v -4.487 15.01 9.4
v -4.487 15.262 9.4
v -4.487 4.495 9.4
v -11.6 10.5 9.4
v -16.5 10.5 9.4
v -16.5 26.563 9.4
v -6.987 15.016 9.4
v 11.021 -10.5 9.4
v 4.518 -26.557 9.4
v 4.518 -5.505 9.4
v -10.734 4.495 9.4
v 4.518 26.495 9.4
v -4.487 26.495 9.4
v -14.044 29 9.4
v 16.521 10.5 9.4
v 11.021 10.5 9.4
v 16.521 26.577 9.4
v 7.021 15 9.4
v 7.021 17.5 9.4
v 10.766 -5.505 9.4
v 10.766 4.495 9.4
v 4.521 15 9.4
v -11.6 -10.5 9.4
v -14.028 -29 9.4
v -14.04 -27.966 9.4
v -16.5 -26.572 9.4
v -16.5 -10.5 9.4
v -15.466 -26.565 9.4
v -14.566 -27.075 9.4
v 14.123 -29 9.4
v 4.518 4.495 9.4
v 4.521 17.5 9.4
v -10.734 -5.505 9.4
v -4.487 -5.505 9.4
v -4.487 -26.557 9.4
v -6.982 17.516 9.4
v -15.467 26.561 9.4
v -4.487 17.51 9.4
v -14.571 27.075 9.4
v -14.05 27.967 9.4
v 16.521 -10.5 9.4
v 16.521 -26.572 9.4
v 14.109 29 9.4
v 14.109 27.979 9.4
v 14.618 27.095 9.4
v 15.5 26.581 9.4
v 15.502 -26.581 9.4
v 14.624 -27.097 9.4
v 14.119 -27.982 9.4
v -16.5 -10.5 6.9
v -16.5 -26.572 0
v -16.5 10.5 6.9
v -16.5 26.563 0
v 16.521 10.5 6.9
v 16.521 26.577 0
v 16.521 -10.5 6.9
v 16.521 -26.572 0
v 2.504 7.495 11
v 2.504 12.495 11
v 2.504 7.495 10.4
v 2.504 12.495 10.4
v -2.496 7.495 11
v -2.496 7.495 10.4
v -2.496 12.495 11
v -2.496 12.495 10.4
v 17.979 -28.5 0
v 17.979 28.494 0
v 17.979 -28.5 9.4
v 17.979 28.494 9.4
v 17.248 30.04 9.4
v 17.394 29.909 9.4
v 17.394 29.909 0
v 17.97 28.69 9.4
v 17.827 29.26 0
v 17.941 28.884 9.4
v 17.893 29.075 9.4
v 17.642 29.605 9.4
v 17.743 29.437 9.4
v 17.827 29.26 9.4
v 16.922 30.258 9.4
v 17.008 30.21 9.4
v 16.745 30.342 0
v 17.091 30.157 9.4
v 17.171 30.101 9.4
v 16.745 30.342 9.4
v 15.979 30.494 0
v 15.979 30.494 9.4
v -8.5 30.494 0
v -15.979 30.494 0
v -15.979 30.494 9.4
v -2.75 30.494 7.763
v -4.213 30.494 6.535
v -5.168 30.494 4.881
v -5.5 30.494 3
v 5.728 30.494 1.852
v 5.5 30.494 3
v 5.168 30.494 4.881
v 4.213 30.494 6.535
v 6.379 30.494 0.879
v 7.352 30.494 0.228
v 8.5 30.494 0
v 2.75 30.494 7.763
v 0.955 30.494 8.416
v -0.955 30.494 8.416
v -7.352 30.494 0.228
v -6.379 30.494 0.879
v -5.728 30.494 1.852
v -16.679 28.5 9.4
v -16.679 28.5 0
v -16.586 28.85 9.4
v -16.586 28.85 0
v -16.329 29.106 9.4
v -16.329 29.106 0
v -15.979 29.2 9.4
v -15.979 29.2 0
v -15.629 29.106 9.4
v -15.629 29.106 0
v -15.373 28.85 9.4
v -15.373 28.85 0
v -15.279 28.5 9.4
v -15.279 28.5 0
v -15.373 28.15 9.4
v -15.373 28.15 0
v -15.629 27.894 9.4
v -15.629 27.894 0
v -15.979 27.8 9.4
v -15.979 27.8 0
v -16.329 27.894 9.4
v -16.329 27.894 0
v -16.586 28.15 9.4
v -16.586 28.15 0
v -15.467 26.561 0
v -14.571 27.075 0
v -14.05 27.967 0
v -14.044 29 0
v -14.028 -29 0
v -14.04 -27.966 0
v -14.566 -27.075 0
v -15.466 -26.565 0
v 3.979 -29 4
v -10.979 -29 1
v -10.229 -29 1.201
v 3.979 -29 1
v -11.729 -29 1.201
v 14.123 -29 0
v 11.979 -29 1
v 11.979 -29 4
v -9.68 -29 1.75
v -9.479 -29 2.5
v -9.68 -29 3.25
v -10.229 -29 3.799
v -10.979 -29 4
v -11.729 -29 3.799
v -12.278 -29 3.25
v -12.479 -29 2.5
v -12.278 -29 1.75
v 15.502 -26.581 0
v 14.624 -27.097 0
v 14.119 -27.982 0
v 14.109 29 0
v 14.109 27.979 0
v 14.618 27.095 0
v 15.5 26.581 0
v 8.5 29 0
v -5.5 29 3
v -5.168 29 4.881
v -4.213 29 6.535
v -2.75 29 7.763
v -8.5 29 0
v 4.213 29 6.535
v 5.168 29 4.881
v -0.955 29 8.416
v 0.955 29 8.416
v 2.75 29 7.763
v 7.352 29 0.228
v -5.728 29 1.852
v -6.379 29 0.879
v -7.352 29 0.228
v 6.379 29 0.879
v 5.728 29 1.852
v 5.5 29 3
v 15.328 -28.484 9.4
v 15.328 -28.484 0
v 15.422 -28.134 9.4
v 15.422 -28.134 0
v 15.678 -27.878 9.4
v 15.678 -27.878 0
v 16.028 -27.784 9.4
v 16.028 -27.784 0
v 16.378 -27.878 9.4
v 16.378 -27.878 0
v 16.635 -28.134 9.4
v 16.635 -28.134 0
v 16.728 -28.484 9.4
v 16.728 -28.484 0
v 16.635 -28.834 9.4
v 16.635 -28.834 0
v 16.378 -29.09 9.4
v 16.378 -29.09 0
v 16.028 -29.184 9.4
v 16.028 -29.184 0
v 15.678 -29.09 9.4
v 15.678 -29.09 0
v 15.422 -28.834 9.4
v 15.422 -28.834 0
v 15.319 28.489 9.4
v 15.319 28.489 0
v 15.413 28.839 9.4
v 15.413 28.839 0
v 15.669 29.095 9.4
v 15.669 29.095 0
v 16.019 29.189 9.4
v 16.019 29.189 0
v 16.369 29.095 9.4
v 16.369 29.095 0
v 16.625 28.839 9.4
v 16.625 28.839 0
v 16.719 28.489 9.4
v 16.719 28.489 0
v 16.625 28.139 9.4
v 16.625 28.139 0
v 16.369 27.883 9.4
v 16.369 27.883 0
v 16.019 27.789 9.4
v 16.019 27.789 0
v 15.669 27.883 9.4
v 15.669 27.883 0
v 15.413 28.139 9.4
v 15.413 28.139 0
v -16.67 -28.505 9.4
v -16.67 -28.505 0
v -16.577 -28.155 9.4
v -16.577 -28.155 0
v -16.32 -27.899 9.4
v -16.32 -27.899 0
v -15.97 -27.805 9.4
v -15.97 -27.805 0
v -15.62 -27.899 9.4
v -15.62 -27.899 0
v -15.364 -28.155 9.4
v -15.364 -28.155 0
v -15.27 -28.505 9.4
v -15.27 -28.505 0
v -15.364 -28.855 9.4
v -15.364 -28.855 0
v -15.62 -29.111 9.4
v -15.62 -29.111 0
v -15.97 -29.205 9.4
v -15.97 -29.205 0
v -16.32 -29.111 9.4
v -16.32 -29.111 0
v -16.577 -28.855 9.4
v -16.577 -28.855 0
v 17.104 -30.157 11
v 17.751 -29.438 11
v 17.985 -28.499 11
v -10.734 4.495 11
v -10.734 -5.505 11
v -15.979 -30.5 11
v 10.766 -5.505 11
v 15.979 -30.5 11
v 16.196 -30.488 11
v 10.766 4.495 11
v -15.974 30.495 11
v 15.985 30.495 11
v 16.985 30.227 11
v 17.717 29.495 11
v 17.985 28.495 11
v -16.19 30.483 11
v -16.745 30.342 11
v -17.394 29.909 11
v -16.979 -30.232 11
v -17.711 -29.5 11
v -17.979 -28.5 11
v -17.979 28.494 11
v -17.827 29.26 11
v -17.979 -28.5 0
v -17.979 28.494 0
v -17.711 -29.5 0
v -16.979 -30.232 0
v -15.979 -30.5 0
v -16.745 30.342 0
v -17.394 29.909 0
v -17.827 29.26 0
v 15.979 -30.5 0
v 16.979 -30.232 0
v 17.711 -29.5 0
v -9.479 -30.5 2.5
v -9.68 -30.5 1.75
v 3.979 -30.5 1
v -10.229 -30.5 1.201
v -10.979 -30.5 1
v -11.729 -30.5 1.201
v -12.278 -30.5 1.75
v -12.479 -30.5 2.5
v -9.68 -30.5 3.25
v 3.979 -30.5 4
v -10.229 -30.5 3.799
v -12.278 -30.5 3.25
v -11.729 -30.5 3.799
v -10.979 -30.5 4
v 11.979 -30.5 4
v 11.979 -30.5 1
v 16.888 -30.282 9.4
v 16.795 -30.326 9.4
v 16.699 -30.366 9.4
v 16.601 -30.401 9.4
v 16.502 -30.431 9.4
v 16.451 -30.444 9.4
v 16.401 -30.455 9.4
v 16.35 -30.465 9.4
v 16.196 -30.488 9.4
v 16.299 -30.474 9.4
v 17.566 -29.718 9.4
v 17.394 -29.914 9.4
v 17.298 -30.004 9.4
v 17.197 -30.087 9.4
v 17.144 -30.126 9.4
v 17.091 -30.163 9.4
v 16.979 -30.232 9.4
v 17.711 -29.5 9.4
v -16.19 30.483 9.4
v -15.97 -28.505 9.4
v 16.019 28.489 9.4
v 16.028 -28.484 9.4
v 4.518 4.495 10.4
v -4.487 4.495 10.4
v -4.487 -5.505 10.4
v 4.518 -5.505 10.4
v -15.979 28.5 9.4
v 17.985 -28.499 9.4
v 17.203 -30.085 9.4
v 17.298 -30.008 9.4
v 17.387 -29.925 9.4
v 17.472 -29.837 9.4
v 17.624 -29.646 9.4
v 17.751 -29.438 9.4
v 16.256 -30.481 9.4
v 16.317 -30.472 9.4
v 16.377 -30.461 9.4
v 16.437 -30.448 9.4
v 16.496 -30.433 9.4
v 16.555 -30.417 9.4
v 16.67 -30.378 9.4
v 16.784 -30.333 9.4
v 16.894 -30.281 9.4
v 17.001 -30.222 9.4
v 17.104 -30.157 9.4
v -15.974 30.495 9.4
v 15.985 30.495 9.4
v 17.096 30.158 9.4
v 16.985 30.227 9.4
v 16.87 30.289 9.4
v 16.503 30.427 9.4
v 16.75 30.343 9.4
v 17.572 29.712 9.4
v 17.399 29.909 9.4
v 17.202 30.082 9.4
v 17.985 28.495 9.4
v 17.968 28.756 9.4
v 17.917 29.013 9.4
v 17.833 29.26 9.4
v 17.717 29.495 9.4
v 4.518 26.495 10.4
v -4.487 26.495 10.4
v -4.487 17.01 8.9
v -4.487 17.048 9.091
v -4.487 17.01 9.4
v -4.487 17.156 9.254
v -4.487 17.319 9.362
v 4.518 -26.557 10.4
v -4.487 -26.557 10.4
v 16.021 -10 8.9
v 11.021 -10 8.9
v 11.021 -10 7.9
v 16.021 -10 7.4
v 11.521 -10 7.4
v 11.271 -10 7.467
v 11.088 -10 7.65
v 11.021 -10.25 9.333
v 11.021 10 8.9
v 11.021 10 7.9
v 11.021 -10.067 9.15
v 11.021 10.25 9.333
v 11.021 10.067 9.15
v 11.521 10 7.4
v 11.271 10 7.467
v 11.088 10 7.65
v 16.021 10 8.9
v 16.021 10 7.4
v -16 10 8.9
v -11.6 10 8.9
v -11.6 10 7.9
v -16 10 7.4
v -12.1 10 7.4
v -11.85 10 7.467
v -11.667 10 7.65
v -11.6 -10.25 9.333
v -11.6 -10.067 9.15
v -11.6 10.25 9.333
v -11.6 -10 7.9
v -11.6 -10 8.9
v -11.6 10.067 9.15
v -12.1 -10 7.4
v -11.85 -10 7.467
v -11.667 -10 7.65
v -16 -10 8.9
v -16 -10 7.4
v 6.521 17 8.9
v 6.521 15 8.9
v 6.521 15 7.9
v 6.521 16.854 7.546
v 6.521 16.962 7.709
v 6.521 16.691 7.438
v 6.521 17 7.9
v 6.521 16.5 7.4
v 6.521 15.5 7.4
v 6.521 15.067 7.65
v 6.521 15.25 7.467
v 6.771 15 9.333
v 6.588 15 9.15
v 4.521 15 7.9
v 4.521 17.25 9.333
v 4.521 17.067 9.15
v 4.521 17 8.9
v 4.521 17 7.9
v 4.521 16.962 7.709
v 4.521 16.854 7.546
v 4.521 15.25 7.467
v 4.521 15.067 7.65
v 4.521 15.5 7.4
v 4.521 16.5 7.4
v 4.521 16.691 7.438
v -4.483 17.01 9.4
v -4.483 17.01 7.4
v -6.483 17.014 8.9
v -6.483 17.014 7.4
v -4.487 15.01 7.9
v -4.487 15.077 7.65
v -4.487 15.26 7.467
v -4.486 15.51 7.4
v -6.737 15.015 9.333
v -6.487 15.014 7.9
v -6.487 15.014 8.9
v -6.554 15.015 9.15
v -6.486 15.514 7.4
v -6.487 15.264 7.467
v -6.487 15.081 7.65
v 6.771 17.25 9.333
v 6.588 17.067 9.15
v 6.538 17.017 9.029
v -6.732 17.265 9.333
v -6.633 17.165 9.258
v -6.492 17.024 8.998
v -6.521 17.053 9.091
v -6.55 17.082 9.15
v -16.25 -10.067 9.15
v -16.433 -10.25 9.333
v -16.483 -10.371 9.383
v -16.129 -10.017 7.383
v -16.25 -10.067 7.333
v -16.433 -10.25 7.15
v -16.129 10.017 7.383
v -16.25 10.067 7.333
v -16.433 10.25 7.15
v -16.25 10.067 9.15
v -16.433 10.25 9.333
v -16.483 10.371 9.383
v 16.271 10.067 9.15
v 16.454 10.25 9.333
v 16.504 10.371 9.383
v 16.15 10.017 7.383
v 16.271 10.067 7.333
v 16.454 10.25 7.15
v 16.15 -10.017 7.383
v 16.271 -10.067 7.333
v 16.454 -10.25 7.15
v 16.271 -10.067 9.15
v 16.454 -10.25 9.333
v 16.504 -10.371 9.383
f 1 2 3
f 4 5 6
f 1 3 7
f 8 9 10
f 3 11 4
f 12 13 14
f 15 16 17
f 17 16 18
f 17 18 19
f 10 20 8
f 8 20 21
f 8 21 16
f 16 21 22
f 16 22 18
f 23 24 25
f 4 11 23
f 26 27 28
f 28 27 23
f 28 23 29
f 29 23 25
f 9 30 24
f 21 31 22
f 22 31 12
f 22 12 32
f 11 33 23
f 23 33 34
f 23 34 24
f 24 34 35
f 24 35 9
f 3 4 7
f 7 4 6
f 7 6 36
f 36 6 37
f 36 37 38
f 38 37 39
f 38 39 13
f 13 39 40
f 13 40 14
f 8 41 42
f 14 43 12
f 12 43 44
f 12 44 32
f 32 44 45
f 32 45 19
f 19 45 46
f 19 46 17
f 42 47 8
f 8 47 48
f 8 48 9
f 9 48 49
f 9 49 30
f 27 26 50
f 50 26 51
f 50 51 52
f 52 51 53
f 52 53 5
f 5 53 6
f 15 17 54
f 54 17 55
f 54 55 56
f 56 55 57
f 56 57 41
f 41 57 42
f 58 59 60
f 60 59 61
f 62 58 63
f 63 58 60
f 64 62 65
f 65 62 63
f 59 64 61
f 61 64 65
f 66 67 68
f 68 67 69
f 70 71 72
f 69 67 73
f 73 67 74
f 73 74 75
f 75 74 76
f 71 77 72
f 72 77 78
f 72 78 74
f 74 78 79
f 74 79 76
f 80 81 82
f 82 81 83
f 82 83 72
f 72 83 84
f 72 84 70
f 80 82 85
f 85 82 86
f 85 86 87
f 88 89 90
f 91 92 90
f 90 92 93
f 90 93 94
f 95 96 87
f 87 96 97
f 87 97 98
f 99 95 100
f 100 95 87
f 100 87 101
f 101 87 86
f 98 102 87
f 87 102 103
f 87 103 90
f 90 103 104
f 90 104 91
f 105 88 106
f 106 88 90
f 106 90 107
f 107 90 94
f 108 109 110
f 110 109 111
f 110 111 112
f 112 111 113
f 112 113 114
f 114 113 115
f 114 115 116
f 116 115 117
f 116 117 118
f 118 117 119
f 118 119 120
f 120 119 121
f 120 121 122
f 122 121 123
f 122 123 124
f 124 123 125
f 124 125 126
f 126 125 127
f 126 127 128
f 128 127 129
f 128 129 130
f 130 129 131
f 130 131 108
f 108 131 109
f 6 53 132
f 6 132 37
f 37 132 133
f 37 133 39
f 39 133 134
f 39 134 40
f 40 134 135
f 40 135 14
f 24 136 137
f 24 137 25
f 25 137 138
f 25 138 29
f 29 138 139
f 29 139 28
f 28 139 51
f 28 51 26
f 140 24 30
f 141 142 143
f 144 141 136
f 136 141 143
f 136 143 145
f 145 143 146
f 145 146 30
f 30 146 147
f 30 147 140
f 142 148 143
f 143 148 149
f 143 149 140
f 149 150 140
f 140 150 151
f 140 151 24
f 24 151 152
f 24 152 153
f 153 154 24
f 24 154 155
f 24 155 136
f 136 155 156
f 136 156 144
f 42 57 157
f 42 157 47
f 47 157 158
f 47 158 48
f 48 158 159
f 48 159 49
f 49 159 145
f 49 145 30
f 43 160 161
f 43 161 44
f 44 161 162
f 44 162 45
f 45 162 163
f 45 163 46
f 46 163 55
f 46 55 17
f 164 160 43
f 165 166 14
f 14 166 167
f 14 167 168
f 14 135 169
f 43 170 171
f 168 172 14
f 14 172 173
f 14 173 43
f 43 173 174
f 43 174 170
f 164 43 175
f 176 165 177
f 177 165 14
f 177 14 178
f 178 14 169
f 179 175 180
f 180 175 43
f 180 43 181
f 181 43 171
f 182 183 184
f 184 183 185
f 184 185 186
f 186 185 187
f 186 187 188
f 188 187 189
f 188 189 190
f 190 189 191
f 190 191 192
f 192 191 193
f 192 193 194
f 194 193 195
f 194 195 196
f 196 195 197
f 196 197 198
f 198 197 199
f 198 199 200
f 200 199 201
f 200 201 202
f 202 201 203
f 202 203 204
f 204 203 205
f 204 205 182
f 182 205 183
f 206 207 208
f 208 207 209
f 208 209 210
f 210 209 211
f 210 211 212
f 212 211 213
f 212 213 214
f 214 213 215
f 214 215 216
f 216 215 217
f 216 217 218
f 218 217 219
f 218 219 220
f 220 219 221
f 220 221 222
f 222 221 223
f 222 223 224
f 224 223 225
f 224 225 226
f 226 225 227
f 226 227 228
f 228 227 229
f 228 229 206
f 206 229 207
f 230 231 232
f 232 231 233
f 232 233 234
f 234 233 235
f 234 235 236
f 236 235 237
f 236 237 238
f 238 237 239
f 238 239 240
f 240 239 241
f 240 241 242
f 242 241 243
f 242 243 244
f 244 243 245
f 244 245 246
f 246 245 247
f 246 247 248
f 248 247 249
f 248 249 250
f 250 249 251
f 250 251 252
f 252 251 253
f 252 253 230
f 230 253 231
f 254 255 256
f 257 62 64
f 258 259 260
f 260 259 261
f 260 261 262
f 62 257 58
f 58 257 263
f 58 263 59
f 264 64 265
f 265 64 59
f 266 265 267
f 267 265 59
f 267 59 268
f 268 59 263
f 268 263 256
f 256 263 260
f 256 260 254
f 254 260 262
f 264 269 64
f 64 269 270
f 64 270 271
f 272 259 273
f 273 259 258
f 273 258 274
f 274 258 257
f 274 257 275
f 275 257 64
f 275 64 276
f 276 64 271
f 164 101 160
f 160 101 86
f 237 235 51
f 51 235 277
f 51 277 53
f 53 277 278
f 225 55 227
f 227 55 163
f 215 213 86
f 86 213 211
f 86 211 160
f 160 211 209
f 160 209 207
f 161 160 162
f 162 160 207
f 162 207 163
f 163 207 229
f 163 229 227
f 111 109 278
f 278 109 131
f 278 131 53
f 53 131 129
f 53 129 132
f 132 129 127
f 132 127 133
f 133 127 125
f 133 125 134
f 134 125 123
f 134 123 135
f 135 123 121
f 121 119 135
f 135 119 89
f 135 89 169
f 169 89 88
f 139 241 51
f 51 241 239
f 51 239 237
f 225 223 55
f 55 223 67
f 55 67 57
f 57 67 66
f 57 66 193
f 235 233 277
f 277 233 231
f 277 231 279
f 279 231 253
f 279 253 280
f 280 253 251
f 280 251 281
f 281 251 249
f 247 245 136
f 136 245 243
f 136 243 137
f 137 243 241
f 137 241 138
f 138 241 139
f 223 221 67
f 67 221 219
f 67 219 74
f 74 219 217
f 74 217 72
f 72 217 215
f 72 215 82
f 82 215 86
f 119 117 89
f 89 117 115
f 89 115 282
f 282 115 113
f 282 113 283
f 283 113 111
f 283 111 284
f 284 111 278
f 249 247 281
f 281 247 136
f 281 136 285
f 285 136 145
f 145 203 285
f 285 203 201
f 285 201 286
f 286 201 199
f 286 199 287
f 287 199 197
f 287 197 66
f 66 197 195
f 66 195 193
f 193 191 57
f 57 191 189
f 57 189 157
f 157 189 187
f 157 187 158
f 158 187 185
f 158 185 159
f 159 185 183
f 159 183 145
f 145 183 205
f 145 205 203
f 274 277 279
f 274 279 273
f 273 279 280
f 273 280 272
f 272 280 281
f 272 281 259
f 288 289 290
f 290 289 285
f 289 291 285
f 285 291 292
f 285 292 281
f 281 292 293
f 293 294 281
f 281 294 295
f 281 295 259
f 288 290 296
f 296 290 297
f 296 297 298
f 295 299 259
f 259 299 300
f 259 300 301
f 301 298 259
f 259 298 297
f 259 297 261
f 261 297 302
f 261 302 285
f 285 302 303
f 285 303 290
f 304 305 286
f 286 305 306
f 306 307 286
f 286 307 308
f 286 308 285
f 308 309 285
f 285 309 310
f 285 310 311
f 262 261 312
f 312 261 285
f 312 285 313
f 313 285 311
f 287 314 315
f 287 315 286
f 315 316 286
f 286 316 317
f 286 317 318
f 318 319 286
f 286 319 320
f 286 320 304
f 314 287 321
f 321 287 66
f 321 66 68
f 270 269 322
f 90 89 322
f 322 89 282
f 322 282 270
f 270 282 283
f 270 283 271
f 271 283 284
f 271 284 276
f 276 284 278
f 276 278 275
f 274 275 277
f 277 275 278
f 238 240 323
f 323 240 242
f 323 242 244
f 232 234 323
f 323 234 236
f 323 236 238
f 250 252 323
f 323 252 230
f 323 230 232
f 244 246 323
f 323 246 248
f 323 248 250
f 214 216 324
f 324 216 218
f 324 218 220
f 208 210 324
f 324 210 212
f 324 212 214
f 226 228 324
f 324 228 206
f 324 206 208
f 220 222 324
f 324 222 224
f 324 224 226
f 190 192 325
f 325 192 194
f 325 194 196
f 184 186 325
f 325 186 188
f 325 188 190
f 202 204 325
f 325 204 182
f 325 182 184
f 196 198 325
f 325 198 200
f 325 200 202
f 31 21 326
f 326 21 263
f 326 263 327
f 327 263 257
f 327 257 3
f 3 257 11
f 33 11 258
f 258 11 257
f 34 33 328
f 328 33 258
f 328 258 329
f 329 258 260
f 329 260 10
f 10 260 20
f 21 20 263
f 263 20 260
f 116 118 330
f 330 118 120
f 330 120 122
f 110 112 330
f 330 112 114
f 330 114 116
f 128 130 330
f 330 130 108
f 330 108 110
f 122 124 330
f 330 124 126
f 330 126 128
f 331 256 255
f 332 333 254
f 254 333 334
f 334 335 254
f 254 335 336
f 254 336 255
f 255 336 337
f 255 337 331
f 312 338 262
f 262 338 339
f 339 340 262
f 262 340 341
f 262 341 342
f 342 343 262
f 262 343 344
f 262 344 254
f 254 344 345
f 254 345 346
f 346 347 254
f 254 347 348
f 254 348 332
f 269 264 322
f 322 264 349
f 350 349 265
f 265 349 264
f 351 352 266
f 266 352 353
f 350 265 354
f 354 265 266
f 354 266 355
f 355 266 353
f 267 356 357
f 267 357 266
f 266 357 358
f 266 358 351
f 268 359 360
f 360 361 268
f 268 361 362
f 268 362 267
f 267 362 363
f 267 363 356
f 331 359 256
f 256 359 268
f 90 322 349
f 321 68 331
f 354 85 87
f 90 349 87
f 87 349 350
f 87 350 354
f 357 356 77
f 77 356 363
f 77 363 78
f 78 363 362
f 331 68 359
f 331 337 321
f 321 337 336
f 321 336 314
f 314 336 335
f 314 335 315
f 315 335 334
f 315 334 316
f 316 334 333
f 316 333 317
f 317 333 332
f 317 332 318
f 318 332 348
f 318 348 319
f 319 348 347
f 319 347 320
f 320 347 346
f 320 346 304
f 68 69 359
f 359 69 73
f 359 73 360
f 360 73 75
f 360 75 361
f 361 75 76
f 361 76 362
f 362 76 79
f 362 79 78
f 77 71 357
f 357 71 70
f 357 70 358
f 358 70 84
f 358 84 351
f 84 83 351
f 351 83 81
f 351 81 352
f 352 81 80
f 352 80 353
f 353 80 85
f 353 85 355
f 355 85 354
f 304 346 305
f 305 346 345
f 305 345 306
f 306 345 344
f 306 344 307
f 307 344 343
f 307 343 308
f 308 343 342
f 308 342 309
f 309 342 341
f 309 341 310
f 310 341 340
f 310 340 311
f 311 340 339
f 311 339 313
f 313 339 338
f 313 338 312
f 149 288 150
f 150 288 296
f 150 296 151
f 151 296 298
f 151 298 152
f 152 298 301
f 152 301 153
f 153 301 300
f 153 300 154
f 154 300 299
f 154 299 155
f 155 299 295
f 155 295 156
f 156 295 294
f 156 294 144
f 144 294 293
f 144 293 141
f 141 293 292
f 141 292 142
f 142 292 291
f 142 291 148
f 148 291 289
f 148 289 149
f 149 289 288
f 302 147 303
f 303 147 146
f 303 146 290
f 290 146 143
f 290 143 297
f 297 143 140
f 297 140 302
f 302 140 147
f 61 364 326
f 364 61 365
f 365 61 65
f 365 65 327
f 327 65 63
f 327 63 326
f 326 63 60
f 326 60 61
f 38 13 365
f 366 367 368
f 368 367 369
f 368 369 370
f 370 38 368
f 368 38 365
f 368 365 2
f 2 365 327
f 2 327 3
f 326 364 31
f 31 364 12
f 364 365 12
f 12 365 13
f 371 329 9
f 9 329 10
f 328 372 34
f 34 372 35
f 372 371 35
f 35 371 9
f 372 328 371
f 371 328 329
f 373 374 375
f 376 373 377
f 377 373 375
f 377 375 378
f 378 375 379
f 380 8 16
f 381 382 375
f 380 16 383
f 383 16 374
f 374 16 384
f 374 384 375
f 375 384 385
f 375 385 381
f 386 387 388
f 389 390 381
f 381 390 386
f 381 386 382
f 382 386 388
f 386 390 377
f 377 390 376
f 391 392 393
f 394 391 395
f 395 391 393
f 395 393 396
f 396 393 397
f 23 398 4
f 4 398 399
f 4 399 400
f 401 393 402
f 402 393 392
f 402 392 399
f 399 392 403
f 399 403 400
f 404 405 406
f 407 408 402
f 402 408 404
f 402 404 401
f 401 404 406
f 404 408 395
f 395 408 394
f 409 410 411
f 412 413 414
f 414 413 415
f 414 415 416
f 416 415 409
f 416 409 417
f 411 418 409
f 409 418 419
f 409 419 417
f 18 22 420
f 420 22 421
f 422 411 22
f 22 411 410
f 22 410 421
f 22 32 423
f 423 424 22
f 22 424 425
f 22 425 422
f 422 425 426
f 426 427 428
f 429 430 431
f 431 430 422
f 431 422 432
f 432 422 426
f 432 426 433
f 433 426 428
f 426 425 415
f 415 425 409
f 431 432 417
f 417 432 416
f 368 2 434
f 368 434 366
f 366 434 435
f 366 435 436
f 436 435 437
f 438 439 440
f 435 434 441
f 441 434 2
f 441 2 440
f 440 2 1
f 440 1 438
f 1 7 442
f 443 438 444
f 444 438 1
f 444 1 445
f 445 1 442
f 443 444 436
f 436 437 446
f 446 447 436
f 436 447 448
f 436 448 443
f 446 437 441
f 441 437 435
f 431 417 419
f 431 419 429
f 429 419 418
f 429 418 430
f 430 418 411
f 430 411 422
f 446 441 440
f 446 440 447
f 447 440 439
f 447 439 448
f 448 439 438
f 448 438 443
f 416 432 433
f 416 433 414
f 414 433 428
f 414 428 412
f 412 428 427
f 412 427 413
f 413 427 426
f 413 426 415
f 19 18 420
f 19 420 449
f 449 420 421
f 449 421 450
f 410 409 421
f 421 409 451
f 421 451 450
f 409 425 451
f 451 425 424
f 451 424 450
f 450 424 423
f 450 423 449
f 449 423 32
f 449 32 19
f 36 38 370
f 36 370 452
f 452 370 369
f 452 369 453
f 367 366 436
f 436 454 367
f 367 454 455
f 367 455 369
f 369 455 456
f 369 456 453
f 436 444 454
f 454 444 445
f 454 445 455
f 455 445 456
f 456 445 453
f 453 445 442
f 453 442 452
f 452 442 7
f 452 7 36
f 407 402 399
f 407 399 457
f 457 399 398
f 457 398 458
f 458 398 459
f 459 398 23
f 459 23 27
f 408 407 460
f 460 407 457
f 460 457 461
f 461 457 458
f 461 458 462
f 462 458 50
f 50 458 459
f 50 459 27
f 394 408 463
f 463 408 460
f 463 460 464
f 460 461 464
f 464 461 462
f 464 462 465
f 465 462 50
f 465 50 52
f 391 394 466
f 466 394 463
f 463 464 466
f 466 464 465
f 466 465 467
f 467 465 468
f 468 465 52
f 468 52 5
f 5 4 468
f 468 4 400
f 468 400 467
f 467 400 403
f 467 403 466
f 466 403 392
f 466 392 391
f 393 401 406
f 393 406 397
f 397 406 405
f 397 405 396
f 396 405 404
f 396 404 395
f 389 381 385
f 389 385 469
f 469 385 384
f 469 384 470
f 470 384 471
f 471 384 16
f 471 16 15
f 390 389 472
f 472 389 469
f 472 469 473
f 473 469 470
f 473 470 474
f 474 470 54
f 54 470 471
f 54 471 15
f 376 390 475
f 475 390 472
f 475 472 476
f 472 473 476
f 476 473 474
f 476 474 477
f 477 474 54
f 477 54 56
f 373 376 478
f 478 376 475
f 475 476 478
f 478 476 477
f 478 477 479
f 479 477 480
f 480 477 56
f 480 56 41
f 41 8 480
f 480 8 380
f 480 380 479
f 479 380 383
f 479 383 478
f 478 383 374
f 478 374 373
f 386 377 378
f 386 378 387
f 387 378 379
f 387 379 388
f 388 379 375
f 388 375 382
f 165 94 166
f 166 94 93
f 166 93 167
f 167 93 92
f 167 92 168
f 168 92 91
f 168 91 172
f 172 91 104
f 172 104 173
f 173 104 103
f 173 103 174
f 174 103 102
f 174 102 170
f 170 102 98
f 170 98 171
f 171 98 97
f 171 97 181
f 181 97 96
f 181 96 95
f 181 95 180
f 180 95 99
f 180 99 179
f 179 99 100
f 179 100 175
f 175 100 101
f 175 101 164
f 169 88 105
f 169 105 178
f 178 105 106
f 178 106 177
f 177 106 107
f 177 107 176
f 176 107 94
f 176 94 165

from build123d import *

# Parameters (mm, degrees)
SKETCH_1_R          = 0.7
EXTRUDE_1_DEPTH     = 11
SKETCH_3_W          = 21.5
SKETCH_3_H          = 10
EXTRUDE_2_DEPTH     = 1.6
SKETCH_4_W          = 5
SKETCH_4_H          = 5
CUT_EXTRUDE_1_DEPTH = 1
CUT_EXTRUDE_2_REACH = 62.995
SKETCH_5_R          = 1.5
SKETCH_5_W          = 8
SKETCH_5_H          = 3
SKETCH_6_W          = 9.004768993
SKETCH_6_H          = 22
SKETCH_6_H_2        = 21.052305639
CUT_EXTRUDE_3_DEPTH = 1
SKETCH_7_W          = 5.5
SKETCH_7_H          = 20
SKETCH_7_W_2        = 4.9
SKETCH_7_W_3        = 2
SKETCH_7_H_2        = 2
EXTRUDE_4_DEPTH     = 2
FILLET_2_R          = 0.5
CUT_EXTRUDE_4_REACH = 62.994
SKETCH_9_R          = 5.5
FILLET_3_R          = 3


with BuildPart() as part:
    # Эскиз1 → Бобышка-Вытянуть1 (new body)
    with BuildSketch(Plane.XY):
        with BuildLine():
            Line((-15.979444254, 30.494289473), (15.979444254, 30.494289473))
            ThreePointArc((15.979444254, 30.494289473), (17.393657817, 29.908503035), (17.979444254, 28.494289473))
            Line((17.979444254, 28.494289473), (17.979444254, -28.500000343))
            ThreePointArc((17.979444254, -28.500000343), (17.393657817, -29.914213905), (15.979444254, -30.500000343))
            Line((15.979444254, -30.500000343), (-15.979444254, -30.500000343))
            ThreePointArc((-15.979444254, -30.500000343), (-17.393657817, -29.914213905), (-17.979444254, -28.500000343))
            Line((-17.979444254, -28.500000343), (-17.979444254, 28.494289473))
            ThreePointArc((-17.979444254, 28.494289473), (-17.393657817, 29.908503035), (-15.979444254, 30.494289473))
        make_face()
        with Locations((-15.979444254, 28.500000343)):
            Circle(SKETCH_1_R, mode=Mode.SUBTRACT)
        with Locations((16.01925313, 28.489204167)):
            Circle(SKETCH_1_R, mode=Mode.SUBTRACT)
        with Locations((16.028296267, -28.484120661)):
            Circle(SKETCH_1_R, mode=Mode.SUBTRACT)
        with Locations((-15.970396078, -28.505074873)):
            Circle(SKETCH_1_R, mode=Mode.SUBTRACT)
        with BuildLine():
            Line((-14.027975552, -29.00000033), (14.122849497, -29.00000033))
            ThreePointArc((14.122849497, -29.00000033), (14.623833191, -27.096913866), (16.520580958, -26.572442078))
            Line((16.520580958, -26.572442078), (16.520580958, 26.576499963))
            ThreePointArc((16.520580958, 26.576499963), (14.617623044, 27.094499874), (14.109055694, 29.00000033))
            Line((14.109055694, 29.00000033), (-14.044436107, 29.00000033))
            ThreePointArc((-14.044436107, 29.00000033), (-14.570671317, 27.074656136), (-16.499999911, 26.563221942))
            Line((-16.499999911, 26.563221942), (-16.499999911, -26.57182153))
            ThreePointArc((-16.499999911, -26.57182153), (-14.565751702, -27.075066872), (-14.027975552, -29.00000033))
        make_face(mode=Mode.SUBTRACT)
    extrude(amount=EXTRUDE_1_DEPTH)

    # Эскиз3 → Бобышка-Вытянуть2 (add)
    with BuildSketch(Plane.XY.offset(11)):
        with BuildLine():
            Line((-17.973934657, 28.494881466), (-17.973934657, -28.49940835))
            ThreePointArc((-17.973934657, -28.49940835), (-17.388148219, -29.913621912), (-15.973934657, -30.49940835))
            Line((-15.973934657, -30.49940835), (15.984953852, -30.49940835))
            ThreePointArc((15.984953852, -30.49940835), (17.399167415, -29.913621912), (17.984953852, -28.49940835))
            Line((17.984953852, -28.49940835), (17.984953852, 28.494881466))
            ThreePointArc((17.984953852, 28.494881466), (17.399167415, 29.909095028), (15.984953852, 30.494881466))
            Line((15.984953852, 30.494881466), (-15.973934657, 30.494881466))
            ThreePointArc((-15.973934657, 30.494881466), (-17.388148219, 29.909095028), (-17.973934657, 28.494881466))
        make_face()
        with Locations((0.015800122, -0.505118534)):
            Rectangle(SKETCH_3_W, SKETCH_3_H, mode=Mode.SUBTRACT)
    extrude(amount=-EXTRUDE_2_DEPTH)

    # Эскиз4 → Вырез-Вытянуть1 (cut)
    with BuildSketch(Plane.XY.offset(11)):
        with Locations((0.003657856, 9.994881549)):
            Rectangle(SKETCH_4_W, SKETCH_4_H)
    extrude(amount=-CUT_EXTRUDE_1_DEPTH, mode=Mode.SUBTRACT)

    # Эскиз5 → Вырез-Вытянуть2 (cut, up to next)
    with BuildSketch(Plane.XZ.offset(30.500000343), mode=Mode.PRIVATE) as cut_extrude_2_sk1:
        with Locations((-10.979444254, 2.5)):
            Circle(SKETCH_5_R)
    cut_extrude_2_tool1 = extrude(cut_extrude_2_sk1.sketch, amount=-CUT_EXTRUDE_2_REACH, mode=Mode.PRIVATE) & part.part
    add(cut_extrude_2_tool1.solids().sort_by_distance((-10.979444, -30.5, 2.5))[0], mode=Mode.SUBTRACT)
    # Эскиз5 → Вырез-Вытянуть2 (cut, up to next)
    with BuildSketch(Plane.XZ.offset(30.500000343), mode=Mode.PRIVATE) as cut_extrude_2_sk2:
        with Locations((7.979444254, 2.5)):
            Rectangle(SKETCH_5_W, SKETCH_5_H)
    cut_extrude_2_tool2 = extrude(cut_extrude_2_sk2.sketch, amount=-CUT_EXTRUDE_2_REACH, mode=Mode.PRIVATE) & part.part
    add(cut_extrude_2_tool2.solids().sort_by_distance((7.979444, -30.5, 2.5))[0], mode=Mode.SUBTRACT)

    # Эскиз6 → Вырез-Вытянуть3 (cut)
    with BuildSketch(Plane(origin=(0, 0, 9.4), x_dir=(-1, 0, 0), z_dir=(0, 0, -1))):
        with Locations((-0.015800121, 15.494881466)):
            Rectangle(SKETCH_6_W, SKETCH_6_H)
        with Locations((-0.015800121, -16.031271353)):
            Rectangle(SKETCH_6_W, SKETCH_6_H_2)
    extrude(amount=-CUT_EXTRUDE_3_DEPTH, mode=Mode.SUBTRACT)

    # Эскиз7 → Бобышка-Вытянуть4 (add)
    with BuildSketch(Plane(origin=(0, 0, 9.4), x_dir=(-1, 0, 0), z_dir=(0, 0, -1))):
        with Locations((-13.770580958, 3.3e-07)):
            Rectangle(SKETCH_7_W, SKETCH_7_H)
        with Locations((14.049999911, 3.3e-07)):
            Rectangle(SKETCH_7_W_2, SKETCH_7_H)
        with Locations((-5.520580958, 16.00000033)):
            Rectangle(SKETCH_7_W_3, SKETCH_7_H_2)
        Polygon((6.48268437, 17.014487668), (6.487140887, 15.014492633), (4.487145853, 15.010036116), (4.482689335, 17.01003115), align=None)
    extrude(amount=EXTRUDE_4_DEPTH)

    # Скругление2
    fillet_2_edges = [part.edges().sort_by_distance(p)[0] for p in [
        (16.520580958, 10.00000033, 8.4),
        (13.770580958, -9.99999967, 9.4),
        (16.520580958, -9.99999967, 8.4),
        (13.770580958, 10.00000033, 9.4),
        (16.520580958, 3.3e-07, 7.4),
        (11.020580958, 3.3e-07, 7.4),
        (-16.499999911, -9.99999967, 8.4),
        (-14.049999911, 10.00000033, 9.4),
        (-16.499999911, 10.00000033, 8.4),
        (-14.049999911, -9.99999967, 9.4),
        (-16.499999911, 3.3e-07, 7.4),
        (-11.599999911, 3.3e-07, 7.4),
        (6.520580958, 16.00000033, 9.4),
        (5.520580958, 17.00000033, 9.4),
        (5.520580958, 15.00000033, 7.4),
        (5.520580958, 17.00000033, 7.4),
        (-5.484634372, 17.012263749, 9.4),
        (-6.484912629, 16.014490151, 9.4),
        (-5.48714337, 15.012264374, 7.4),
    ]]
    fillet(fillet_2_edges, radius=FILLET_2_R)

    # Эскиз9 → Вырез-Вытянуть4 (cut, up to next)
    with BuildSketch(Plane(origin=(0, 30.494289473, 0), x_dir=(1, 0, 0), z_dir=(0, 1, 0)), mode=Mode.PRIVATE) as cut_extrude_4_sk1:
        with Locations((0, -3)):
            Circle(SKETCH_9_R)
    cut_extrude_4_tool1 = extrude(cut_extrude_4_sk1.sketch, amount=-CUT_EXTRUDE_4_REACH, mode=Mode.PRIVATE) & part.part
    add(cut_extrude_4_tool1.solids().sort_by_distance((0, 30.494289, 3))[0], mode=Mode.SUBTRACT)

    # Скругление3
    fillet_3_edges = [part.edges().sort_by_distance(p)[0] for p in [
        (4.609772229, 29.747144901, 0),
        (-4.609772229, 29.747144901, 0),
    ]]
    fillet(fillet_3_edges, radius=FILLET_3_R)


solid = part.part
